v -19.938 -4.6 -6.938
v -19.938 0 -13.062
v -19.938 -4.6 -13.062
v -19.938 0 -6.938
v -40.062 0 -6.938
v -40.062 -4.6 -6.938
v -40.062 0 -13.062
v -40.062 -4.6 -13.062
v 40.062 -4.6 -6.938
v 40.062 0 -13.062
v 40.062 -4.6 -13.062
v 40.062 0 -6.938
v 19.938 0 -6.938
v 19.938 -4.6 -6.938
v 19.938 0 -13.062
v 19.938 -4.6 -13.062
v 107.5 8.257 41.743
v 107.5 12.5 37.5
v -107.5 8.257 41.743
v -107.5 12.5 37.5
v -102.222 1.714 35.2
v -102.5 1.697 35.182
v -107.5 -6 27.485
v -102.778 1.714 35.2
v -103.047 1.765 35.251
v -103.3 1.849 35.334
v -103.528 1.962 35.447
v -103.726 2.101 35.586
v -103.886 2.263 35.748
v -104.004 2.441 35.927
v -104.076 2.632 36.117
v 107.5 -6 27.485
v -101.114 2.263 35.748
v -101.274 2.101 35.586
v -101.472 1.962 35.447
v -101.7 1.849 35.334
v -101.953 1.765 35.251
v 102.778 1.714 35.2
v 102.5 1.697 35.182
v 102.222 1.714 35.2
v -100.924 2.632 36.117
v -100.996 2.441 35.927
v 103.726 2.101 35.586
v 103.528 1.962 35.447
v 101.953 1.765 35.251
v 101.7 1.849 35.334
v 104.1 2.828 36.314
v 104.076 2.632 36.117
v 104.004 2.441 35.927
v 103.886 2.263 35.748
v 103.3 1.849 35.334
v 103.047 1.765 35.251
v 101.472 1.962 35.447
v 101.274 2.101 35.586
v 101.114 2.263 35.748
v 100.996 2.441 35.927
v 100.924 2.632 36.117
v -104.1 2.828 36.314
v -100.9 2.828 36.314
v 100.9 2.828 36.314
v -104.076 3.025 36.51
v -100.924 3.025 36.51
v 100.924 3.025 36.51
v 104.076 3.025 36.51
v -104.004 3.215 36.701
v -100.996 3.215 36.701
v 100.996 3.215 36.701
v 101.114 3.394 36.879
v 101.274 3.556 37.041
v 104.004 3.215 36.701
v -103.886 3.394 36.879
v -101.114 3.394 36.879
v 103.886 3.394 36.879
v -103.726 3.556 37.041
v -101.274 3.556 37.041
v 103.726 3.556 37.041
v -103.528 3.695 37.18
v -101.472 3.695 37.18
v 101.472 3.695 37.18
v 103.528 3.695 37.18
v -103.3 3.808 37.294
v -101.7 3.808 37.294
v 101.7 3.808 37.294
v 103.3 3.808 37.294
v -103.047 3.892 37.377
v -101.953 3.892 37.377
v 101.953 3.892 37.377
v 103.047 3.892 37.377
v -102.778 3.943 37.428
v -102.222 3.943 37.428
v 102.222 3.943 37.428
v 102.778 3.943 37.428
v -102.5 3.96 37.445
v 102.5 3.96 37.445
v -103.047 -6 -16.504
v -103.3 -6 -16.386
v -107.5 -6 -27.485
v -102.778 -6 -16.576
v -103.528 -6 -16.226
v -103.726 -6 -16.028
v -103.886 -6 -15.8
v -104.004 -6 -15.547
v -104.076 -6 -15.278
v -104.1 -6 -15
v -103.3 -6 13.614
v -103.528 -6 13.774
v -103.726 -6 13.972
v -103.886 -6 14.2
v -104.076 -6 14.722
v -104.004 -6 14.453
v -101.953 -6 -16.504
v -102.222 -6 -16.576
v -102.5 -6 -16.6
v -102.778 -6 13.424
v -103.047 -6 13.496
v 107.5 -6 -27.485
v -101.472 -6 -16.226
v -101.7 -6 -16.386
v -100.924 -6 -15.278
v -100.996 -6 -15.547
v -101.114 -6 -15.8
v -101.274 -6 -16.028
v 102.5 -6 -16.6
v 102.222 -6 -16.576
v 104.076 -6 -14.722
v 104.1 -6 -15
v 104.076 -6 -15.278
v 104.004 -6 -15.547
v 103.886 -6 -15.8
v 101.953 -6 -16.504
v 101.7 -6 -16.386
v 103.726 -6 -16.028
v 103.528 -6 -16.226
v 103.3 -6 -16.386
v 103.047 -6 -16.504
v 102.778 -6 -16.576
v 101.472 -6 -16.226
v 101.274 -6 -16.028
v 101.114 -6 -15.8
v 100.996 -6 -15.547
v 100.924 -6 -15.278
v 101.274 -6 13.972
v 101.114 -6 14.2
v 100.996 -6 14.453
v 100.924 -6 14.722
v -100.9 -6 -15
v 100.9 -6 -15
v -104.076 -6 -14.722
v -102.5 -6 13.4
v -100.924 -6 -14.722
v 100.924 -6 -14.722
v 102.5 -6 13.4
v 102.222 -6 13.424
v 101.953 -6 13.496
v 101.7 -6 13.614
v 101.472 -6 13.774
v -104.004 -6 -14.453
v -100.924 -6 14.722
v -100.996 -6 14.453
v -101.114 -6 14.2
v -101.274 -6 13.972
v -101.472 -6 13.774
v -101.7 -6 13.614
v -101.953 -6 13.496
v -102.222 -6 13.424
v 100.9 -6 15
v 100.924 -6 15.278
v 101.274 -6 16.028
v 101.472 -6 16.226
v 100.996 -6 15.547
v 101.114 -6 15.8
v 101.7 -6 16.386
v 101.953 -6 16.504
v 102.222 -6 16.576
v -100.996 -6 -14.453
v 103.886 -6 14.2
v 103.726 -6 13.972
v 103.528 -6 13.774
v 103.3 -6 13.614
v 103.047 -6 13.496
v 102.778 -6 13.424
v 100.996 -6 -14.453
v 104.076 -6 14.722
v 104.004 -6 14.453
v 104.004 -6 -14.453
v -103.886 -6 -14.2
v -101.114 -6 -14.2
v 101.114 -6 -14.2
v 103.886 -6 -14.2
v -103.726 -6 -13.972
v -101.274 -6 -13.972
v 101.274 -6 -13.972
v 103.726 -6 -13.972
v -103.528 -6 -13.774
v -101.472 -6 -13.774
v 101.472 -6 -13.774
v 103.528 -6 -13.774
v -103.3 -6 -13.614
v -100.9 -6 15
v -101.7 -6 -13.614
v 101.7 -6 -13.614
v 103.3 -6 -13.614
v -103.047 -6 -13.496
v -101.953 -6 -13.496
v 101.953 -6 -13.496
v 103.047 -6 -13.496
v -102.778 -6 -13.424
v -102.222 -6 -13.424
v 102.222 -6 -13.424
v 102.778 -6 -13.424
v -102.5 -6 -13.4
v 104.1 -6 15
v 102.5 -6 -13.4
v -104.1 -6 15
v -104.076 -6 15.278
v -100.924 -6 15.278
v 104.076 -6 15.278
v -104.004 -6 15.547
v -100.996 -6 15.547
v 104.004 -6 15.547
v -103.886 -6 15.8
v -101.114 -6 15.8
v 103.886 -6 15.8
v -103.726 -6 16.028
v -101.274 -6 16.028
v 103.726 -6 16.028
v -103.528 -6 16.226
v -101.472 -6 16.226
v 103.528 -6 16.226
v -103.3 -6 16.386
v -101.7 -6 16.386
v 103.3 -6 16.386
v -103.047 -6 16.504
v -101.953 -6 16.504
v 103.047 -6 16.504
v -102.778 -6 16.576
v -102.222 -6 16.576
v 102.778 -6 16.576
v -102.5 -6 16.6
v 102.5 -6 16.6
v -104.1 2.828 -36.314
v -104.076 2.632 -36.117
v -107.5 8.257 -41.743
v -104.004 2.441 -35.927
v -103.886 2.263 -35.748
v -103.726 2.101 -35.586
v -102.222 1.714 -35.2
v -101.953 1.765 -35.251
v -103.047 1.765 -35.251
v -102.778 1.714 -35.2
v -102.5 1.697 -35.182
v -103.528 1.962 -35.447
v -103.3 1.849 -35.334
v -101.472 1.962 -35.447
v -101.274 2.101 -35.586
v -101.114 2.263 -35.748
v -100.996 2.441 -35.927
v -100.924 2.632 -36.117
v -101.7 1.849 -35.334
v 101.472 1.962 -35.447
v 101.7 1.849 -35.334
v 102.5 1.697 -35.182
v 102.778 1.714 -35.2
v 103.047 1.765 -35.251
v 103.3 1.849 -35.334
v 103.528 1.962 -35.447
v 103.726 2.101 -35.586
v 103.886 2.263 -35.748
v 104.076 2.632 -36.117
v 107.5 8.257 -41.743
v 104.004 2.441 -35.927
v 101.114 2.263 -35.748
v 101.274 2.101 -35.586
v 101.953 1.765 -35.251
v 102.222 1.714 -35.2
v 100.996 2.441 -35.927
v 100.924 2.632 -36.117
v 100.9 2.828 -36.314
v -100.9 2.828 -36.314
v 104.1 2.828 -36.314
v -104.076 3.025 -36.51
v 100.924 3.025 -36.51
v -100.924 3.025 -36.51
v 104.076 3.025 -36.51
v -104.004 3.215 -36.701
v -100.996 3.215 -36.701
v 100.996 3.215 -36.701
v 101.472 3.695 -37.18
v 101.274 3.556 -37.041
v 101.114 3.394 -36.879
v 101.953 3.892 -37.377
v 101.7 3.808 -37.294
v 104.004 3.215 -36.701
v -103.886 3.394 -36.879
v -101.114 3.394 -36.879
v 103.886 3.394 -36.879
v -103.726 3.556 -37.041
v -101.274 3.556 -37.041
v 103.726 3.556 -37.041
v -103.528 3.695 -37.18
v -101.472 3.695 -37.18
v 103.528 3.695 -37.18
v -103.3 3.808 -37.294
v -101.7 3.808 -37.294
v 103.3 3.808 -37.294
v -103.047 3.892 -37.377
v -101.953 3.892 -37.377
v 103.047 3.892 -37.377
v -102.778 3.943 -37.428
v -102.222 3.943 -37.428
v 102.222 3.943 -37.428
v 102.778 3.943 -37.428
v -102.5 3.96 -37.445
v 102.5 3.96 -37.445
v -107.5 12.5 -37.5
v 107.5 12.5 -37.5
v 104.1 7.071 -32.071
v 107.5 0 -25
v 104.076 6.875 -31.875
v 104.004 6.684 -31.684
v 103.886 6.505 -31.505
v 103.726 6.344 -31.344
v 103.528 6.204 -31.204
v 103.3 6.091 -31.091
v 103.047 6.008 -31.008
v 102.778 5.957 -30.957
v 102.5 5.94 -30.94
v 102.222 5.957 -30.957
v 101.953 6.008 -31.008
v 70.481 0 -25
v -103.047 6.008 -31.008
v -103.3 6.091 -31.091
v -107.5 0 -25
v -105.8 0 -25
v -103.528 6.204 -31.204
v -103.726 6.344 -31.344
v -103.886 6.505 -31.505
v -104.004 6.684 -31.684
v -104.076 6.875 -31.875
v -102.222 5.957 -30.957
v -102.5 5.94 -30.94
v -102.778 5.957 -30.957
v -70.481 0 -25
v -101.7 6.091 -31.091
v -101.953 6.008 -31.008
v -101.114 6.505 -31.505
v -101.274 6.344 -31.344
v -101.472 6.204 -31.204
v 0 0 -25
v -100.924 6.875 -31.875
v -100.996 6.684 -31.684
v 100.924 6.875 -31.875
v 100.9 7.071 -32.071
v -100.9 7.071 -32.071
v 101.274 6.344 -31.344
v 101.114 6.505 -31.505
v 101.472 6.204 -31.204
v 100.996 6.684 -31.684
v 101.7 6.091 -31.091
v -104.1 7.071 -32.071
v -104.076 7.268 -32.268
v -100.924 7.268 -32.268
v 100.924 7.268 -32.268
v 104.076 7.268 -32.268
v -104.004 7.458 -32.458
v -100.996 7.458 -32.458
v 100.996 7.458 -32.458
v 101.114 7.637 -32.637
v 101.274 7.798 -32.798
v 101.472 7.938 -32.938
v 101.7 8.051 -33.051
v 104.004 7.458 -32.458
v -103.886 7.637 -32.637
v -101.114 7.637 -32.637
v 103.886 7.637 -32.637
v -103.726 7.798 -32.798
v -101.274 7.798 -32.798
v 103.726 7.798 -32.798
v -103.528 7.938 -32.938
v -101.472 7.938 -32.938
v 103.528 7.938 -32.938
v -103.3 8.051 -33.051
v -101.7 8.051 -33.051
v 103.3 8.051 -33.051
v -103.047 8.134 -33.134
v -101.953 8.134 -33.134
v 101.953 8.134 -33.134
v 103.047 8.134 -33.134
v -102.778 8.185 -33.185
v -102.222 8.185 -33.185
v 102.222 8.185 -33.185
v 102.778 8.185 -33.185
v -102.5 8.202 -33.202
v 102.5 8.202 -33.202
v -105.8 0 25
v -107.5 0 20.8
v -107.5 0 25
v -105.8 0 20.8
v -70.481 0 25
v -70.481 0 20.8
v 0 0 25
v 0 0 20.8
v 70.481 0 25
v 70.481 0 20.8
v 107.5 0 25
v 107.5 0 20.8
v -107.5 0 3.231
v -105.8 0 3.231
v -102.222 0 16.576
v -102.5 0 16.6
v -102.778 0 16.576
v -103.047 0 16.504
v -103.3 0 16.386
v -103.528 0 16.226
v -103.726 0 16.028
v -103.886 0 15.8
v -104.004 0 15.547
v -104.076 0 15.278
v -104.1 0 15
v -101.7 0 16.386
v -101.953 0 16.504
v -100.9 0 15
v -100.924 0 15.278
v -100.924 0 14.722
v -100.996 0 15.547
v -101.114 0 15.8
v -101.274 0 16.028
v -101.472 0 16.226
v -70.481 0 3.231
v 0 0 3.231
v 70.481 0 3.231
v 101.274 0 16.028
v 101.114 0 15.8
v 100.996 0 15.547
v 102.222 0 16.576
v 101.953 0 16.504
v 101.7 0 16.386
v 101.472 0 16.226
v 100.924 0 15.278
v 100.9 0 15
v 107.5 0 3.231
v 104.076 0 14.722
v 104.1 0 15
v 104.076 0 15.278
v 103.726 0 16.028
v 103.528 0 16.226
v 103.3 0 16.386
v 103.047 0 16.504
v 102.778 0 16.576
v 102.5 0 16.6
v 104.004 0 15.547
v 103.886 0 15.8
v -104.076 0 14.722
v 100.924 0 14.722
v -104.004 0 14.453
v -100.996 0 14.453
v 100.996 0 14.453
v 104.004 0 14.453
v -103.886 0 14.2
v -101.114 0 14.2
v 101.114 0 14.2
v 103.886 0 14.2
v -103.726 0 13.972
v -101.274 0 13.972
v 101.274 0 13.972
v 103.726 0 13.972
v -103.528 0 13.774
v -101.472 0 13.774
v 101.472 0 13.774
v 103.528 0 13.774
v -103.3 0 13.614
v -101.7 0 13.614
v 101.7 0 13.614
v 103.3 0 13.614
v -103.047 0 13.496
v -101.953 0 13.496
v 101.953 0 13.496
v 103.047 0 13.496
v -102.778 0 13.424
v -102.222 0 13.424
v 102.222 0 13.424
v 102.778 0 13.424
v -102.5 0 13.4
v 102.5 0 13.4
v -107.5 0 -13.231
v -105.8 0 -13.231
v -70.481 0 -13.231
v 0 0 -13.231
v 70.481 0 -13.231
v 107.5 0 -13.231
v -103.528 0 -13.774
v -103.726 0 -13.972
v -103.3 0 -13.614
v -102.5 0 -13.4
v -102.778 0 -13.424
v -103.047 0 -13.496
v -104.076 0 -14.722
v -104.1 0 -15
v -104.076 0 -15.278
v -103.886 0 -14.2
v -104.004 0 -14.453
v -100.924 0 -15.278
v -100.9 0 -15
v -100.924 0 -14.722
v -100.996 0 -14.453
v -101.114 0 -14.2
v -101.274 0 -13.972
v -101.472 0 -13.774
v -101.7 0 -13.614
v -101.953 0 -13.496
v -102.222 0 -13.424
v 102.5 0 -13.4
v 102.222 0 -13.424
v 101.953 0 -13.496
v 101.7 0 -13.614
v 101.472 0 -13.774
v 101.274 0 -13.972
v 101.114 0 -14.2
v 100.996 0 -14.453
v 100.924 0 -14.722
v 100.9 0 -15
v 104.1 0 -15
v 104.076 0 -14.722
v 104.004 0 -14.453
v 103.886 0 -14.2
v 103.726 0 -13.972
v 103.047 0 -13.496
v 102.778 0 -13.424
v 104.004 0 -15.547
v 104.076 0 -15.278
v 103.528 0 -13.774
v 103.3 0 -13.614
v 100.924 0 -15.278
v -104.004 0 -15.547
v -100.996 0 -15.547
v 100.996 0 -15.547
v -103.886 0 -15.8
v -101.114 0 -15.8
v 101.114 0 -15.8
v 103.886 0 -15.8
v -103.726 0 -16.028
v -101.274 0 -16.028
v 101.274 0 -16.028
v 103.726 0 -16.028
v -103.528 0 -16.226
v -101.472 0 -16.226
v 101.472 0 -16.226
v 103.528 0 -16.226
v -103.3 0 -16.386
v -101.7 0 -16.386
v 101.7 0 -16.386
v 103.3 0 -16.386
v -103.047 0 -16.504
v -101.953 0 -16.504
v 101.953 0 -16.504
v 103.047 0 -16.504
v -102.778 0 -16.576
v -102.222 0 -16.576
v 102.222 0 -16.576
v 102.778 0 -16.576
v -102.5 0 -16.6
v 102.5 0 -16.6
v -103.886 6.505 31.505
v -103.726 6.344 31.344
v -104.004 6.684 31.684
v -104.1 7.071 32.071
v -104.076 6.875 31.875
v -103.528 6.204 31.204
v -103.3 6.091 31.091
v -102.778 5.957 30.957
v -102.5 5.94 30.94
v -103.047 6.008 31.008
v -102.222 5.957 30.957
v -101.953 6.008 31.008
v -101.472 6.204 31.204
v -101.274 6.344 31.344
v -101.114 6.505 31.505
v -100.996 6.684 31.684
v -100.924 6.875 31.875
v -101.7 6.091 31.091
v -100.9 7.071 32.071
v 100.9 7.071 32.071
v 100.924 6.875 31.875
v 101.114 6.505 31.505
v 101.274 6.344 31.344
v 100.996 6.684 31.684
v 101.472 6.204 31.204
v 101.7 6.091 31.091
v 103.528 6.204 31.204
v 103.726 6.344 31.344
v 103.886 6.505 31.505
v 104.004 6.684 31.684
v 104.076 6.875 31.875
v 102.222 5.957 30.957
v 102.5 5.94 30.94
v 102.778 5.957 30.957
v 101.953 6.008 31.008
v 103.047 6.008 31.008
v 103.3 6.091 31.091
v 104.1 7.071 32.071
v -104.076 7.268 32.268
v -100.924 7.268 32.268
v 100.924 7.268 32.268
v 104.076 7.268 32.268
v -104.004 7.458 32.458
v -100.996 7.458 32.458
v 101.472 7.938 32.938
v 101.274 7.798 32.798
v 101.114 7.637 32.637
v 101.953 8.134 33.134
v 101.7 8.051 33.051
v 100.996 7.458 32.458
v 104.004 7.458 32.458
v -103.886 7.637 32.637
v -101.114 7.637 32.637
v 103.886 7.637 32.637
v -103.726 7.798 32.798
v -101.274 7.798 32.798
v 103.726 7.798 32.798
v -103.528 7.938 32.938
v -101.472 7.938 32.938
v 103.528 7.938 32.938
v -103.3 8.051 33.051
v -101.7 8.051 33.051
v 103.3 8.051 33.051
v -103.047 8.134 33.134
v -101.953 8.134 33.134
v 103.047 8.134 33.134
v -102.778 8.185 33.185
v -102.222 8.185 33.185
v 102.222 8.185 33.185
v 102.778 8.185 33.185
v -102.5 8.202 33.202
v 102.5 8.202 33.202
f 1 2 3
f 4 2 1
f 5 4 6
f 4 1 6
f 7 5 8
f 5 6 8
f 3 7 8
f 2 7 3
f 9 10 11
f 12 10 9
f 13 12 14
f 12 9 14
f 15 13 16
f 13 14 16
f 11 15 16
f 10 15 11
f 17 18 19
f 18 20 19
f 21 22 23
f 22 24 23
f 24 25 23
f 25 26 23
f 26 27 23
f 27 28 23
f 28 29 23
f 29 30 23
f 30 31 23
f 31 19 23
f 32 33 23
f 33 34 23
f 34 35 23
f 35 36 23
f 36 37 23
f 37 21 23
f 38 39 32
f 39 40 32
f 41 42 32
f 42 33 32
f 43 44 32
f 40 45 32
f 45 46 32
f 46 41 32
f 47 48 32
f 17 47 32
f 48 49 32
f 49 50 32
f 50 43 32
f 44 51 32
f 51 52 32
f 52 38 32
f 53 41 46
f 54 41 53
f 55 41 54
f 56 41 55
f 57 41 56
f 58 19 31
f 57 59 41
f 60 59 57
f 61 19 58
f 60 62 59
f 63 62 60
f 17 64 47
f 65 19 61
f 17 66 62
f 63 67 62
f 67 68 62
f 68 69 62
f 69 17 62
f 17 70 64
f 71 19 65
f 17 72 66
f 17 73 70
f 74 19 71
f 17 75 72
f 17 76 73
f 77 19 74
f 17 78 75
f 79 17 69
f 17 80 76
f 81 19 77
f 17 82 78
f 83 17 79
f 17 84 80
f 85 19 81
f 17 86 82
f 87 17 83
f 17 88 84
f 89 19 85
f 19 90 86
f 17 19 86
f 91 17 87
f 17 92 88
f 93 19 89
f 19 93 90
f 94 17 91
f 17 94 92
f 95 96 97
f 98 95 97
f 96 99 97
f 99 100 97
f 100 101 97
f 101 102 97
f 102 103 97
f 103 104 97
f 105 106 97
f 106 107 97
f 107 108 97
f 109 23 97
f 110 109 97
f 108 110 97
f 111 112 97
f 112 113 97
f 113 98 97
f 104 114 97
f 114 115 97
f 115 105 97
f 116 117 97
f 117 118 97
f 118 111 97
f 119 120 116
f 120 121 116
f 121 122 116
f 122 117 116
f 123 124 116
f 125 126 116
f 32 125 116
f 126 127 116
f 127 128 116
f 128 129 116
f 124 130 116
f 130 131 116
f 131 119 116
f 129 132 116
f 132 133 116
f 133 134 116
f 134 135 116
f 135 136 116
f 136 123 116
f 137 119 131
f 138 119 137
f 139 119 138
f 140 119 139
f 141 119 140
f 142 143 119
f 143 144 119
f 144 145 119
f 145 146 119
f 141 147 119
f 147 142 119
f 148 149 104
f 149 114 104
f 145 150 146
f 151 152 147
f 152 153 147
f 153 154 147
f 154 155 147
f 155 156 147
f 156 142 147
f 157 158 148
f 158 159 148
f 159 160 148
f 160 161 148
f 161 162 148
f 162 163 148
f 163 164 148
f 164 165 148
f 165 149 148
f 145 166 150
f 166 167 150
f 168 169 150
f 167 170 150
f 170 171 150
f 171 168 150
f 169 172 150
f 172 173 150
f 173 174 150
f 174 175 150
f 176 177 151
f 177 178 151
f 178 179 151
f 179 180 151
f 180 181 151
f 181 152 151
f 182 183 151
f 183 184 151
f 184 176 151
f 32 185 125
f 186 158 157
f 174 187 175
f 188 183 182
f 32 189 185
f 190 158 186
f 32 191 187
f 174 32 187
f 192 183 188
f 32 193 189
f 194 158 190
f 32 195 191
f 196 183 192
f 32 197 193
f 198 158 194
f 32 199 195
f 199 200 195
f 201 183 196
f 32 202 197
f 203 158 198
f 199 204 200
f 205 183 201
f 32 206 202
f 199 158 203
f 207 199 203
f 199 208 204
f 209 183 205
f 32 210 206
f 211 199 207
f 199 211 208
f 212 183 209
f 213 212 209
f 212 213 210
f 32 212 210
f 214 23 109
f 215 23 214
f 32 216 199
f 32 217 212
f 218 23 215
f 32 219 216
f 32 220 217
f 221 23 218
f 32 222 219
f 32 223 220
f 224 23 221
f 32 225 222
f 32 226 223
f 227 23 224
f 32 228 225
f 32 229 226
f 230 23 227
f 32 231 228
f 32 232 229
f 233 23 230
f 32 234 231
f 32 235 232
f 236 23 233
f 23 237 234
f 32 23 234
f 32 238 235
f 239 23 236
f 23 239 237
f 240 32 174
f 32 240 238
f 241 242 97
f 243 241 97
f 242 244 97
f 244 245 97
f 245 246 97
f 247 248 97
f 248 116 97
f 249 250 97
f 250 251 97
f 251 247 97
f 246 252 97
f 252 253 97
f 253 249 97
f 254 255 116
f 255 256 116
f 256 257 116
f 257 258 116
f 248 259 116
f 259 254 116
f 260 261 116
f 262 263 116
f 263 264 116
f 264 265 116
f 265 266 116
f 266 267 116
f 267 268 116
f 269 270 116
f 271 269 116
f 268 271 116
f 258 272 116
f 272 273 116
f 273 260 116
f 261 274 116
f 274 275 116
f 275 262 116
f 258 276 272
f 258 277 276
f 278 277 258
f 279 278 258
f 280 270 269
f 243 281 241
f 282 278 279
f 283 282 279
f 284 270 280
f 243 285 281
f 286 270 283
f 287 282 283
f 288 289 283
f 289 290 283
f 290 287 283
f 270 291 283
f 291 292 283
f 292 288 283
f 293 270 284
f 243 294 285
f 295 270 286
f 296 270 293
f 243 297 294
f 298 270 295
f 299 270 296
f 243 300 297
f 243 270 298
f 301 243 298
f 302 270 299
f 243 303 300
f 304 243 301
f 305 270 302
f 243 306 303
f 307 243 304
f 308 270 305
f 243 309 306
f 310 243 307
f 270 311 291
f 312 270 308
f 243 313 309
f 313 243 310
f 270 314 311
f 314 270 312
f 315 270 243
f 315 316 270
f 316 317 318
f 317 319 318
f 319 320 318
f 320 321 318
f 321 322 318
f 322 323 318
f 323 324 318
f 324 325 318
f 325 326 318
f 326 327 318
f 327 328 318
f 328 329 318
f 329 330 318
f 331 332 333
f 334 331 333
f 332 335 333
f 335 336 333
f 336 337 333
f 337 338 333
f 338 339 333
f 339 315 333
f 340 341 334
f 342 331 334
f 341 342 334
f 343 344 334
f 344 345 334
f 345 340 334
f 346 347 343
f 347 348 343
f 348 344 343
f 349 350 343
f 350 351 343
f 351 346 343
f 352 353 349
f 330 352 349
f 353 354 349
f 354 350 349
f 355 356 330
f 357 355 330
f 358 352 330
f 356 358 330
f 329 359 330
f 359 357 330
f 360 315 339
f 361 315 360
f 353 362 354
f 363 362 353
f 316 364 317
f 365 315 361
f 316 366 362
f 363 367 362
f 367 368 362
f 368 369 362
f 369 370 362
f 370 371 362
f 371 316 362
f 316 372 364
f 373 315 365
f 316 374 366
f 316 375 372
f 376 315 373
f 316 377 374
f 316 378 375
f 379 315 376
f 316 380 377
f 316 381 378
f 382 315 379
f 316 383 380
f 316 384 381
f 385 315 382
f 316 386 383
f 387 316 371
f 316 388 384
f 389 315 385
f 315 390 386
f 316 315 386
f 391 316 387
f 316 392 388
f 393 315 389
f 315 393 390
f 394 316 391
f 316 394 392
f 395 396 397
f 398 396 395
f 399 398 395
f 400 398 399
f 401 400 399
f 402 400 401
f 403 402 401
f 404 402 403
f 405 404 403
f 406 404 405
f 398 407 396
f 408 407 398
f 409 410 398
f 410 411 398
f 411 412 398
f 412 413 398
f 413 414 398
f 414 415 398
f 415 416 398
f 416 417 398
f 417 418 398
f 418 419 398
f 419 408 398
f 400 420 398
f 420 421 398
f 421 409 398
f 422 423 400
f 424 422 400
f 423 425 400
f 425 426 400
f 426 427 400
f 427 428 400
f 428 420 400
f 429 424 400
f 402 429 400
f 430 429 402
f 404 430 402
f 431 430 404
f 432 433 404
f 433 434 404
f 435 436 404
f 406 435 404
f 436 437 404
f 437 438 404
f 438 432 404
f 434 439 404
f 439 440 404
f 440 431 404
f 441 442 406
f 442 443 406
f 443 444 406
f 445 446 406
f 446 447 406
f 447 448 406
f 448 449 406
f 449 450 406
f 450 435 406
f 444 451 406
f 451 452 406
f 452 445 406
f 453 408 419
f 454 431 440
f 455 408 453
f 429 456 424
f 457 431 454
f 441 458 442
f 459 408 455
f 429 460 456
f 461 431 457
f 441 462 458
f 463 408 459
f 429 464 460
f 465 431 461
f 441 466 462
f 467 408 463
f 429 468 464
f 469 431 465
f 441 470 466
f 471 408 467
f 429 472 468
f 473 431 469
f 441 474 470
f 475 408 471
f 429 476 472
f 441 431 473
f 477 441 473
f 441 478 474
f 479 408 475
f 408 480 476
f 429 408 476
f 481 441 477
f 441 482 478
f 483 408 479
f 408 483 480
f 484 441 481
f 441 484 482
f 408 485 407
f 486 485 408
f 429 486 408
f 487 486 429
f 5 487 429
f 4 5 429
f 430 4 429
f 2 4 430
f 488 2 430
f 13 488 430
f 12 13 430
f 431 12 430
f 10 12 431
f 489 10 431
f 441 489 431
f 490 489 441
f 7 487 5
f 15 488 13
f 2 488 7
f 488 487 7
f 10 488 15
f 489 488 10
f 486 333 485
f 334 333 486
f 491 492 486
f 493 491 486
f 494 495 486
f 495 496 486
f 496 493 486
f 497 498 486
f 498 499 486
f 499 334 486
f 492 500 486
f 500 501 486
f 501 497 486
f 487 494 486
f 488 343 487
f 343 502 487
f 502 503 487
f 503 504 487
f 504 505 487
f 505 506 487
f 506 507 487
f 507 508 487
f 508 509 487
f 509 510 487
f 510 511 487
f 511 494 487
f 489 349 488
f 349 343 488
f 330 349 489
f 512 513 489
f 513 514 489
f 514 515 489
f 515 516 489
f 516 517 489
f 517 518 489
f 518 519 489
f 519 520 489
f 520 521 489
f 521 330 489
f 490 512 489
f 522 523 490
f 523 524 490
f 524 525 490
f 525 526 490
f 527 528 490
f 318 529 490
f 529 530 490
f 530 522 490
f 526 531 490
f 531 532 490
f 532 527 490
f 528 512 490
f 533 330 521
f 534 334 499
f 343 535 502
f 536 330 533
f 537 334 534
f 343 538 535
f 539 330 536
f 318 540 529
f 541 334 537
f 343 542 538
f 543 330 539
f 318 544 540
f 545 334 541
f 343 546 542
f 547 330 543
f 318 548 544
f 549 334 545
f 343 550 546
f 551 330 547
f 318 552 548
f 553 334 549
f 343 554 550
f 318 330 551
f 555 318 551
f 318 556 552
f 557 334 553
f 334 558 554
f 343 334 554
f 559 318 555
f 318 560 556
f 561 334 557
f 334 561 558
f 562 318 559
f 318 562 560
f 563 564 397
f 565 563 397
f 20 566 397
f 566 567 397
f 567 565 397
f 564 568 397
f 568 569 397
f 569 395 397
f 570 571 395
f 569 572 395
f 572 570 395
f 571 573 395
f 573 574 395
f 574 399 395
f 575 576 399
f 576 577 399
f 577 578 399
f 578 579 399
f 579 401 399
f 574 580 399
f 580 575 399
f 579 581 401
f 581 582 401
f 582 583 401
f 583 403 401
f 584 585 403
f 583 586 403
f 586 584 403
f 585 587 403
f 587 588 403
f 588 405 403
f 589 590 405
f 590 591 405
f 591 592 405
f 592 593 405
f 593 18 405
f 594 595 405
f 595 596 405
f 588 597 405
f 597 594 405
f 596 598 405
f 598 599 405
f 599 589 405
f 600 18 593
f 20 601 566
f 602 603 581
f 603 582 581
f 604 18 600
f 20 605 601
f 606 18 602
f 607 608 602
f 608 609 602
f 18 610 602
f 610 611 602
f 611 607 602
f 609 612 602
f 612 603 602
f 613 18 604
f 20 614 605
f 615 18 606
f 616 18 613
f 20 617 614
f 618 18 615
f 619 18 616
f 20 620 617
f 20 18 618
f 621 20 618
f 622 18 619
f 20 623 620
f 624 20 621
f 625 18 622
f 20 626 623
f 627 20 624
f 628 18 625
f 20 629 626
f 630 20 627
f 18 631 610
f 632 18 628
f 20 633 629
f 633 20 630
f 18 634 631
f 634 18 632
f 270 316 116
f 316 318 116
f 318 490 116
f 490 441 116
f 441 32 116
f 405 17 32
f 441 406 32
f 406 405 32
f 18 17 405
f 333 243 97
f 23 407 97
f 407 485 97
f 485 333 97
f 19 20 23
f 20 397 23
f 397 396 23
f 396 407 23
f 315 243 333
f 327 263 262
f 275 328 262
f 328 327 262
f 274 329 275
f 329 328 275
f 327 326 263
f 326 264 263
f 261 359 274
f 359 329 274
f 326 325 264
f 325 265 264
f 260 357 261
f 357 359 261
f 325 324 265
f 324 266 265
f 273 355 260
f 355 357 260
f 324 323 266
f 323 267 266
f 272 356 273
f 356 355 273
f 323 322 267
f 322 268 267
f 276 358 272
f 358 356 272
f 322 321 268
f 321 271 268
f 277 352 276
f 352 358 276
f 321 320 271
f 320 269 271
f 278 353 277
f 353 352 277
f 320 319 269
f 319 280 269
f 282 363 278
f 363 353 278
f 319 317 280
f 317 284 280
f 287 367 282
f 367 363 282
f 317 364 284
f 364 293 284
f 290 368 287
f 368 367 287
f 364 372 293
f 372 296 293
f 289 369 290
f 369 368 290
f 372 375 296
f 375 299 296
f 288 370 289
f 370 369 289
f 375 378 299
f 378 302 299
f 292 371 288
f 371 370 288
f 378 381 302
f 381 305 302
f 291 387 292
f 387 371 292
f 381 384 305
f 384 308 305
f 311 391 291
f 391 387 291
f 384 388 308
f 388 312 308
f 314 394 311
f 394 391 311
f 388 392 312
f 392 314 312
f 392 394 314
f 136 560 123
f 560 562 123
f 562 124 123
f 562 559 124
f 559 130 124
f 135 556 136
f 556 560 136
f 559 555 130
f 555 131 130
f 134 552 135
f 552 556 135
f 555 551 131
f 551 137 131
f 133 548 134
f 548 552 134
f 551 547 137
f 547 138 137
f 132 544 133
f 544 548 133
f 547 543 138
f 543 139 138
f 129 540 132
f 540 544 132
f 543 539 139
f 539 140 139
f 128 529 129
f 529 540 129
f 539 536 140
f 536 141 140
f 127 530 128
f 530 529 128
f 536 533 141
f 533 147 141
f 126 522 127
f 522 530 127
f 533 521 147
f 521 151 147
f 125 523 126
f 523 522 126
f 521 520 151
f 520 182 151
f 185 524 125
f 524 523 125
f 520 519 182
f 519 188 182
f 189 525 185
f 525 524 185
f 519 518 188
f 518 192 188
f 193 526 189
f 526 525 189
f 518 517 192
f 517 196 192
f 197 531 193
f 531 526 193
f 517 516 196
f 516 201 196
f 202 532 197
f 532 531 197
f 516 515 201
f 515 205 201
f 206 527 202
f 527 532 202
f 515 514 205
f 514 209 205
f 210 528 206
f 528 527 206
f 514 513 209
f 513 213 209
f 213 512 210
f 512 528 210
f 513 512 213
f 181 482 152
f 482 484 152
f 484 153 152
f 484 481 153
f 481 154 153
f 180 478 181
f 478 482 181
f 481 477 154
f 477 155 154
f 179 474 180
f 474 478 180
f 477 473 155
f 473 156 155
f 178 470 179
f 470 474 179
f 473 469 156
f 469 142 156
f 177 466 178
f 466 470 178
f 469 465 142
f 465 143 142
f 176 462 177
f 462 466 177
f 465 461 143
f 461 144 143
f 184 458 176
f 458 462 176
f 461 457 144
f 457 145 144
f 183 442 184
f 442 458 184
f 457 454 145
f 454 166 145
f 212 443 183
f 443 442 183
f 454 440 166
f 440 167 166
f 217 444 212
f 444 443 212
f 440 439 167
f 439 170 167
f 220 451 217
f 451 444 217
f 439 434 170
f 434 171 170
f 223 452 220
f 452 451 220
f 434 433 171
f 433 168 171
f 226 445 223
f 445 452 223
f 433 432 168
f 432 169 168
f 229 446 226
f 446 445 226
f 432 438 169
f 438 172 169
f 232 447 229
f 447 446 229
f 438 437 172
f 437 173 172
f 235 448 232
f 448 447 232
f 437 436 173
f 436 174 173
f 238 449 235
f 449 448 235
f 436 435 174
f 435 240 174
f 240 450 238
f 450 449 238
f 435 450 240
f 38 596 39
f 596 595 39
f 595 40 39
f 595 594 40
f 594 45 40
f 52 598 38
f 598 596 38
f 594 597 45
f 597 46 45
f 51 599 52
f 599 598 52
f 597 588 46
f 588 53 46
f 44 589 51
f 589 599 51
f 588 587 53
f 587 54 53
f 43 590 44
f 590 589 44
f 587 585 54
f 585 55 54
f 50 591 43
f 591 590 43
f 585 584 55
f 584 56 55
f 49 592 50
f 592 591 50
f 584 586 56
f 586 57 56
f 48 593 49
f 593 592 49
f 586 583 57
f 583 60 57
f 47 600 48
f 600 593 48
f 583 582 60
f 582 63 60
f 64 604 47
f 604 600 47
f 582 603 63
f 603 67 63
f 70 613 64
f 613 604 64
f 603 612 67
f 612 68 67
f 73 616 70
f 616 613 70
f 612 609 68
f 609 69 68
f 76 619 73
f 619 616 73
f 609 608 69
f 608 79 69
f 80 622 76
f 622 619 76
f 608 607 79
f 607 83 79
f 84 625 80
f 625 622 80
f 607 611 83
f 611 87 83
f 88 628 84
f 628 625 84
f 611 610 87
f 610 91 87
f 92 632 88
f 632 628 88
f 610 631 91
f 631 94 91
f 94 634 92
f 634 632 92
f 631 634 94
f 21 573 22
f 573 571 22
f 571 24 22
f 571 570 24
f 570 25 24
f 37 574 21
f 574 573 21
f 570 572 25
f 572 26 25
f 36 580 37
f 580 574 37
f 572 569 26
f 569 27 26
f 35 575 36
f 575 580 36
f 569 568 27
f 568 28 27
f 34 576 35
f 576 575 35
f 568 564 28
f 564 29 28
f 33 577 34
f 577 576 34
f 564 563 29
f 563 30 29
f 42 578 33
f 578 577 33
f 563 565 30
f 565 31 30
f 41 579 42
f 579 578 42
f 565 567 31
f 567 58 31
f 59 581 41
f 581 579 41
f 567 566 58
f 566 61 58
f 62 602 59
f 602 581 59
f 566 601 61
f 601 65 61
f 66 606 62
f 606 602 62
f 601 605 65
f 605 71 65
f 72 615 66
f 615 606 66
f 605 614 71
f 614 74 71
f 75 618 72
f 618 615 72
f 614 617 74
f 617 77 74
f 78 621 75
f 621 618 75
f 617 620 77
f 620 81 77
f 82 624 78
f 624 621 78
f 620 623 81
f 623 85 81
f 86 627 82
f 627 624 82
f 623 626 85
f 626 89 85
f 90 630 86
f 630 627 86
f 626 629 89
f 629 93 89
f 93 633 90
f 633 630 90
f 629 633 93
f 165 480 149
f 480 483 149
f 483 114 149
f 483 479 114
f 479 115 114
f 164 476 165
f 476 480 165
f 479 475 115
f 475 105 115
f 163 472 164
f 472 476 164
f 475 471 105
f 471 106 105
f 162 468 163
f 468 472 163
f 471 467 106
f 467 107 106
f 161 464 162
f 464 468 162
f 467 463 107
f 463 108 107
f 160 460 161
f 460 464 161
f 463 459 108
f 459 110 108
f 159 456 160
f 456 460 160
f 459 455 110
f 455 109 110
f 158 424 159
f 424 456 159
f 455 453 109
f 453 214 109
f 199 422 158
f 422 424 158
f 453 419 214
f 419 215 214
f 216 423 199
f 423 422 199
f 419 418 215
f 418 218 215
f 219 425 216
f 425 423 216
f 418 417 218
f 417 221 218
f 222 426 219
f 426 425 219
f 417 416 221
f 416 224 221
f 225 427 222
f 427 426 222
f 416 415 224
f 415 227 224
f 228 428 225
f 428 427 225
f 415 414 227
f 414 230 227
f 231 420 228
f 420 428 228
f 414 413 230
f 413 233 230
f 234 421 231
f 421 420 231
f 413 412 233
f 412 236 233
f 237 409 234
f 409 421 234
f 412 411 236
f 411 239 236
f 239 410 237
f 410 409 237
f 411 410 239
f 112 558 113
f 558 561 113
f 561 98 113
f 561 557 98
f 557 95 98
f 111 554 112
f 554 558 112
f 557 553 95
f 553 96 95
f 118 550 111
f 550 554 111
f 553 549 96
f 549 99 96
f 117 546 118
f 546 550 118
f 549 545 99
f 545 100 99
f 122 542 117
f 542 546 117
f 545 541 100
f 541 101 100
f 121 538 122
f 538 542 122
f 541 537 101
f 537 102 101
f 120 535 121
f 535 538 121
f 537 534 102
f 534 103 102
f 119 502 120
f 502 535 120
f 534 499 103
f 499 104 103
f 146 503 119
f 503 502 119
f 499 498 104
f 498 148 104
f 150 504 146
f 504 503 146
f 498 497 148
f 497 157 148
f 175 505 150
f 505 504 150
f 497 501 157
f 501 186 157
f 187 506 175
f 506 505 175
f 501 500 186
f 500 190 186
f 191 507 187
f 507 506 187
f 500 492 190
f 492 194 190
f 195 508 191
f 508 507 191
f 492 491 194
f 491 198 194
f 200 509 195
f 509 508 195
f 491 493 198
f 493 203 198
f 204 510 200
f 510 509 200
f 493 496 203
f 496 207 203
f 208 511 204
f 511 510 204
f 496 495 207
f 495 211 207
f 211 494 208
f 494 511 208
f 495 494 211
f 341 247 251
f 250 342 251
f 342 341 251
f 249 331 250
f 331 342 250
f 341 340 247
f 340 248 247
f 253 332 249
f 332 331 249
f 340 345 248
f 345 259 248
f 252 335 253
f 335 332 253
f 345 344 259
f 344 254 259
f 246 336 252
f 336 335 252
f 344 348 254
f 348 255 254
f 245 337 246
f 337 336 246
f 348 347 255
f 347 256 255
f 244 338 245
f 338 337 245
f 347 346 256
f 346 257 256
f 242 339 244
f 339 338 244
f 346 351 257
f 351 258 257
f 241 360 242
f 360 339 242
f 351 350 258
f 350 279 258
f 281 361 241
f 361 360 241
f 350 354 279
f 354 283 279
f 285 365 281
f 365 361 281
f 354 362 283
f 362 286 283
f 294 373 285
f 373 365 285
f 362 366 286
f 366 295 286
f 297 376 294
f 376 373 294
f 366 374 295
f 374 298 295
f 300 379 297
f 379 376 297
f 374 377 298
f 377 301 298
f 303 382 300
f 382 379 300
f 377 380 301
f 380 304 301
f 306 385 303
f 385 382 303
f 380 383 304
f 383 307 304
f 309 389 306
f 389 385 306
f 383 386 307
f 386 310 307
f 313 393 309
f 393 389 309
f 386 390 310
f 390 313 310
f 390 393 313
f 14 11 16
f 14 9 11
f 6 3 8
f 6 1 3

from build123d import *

# Parameters (mm, degrees)
MAIN_DEPTH                      = 107.5
F_4_0MM_DOWEL_HOLE2_D           = 3.2
F_4_0MM_DOWEL_HOLE2_ON_FACE_2_D = 3.2
F_4_0MM_DOWEL_HOLE2_ON_FACE_3_D = 3.2
F_4_0MM_DOWEL_HOLE2_ON_FACE_4_D = 3.2
SKETCH6_W                       = 20.125
SKETCH6_H                       = 6.125
SHELF_CUT_DEPTH                 = 116.995465651
SKETCH7_W                       = 20.125
SKETCH7_H                       = 6.125
BOSS_EXTRUDE2_DEPTH             = 1.4


with BuildPart() as part:
    # Sketch2 → Main (new, symmetric)
    with BuildSketch(Plane(origin=(0, 0, 0), x_dir=(0, 0, -1), z_dir=(1, 0, 0))):
        Polygon((-25, 0), (25, 0), (37.5, 12.5), (41.742640687, 8.257359313), (27.485281374, -6), (-27.485281374, -6), (-41.742640687, 8.257359313), (-37.5, 12.5), align=None)
    extrude(amount=MAIN_DEPTH, both=True)

    # Ø4.0mm Dowel Hole2 (through all)
    with Locations(Plane(origin=(-102.5, 7.071067812, -32.071067812), x_dir=(0, 0.707106781187, -0.707106781187), z_dir=(0, 0.707106781187, 0.707106781187))):
        with Locations((0, 0)):
            Hole(F_4_0MM_DOWEL_HOLE2_D / 2)

    # Ø4.0mm Dowel Hole2 on face 2 (through all)
    with Locations(Plane(origin=(-102.5, 0, -15), x_dir=(0, 0, 1), z_dir=(0, 1, 0))):
        with Locations((0, 0), (30, 0), (30, 205), (0, 205)):
            Hole(F_4_0MM_DOWEL_HOLE2_ON_FACE_2_D / 2)

    # Ø4.0mm Dowel Hole2 on face 3 (through all)
    with Locations(Plane(origin=(-102.5, 7.071067812, 32.071067812), x_dir=(0, -0.707106781187, -0.707106781187), z_dir=(0, 0.707106781187, -0.707106781187))):
        with Locations((0, 0), (0, -205)):
            Hole(F_4_0MM_DOWEL_HOLE2_ON_FACE_3_D / 2)

    # Ø4.0mm Dowel Hole2 on face 4 (through all)
    with Locations(Plane(origin=(102.5, 7.071067812, -32.071067812), x_dir=(0, 0.707106781187, -0.707106781187), z_dir=(0, 0.707106781187, 0.707106781187))):
        with Locations((0, 0)):
            Hole(F_4_0MM_DOWEL_HOLE2_ON_FACE_4_D / 2)

    # Sketch6 → Shelf cut (cut, through all)
    with BuildSketch(Plane(origin=(0, 0, 0), x_dir=(1, 0, 0), z_dir=(0, 1, 0))):
        with Locations((30, 10)):
            Rectangle(SKETCH6_W, SKETCH6_H)
        with Locations((-30, 10)):
            Rectangle(SKETCH6_W, SKETCH6_H)
    extrude(amount=-SHELF_CUT_DEPTH, mode=Mode.SUBTRACT)

    # Sketch7 → Boss-Extrude2 (add)
    with BuildSketch(Plane.XZ.offset(6)):
        with Locations((30, -10)):
            Rectangle(SKETCH7_W, SKETCH7_H)
        with Locations((-30, -10)):
            Rectangle(SKETCH7_W, SKETCH7_H)
    extrude(amount=-BOSS_EXTRUDE2_DEPTH)


solid = part.part
